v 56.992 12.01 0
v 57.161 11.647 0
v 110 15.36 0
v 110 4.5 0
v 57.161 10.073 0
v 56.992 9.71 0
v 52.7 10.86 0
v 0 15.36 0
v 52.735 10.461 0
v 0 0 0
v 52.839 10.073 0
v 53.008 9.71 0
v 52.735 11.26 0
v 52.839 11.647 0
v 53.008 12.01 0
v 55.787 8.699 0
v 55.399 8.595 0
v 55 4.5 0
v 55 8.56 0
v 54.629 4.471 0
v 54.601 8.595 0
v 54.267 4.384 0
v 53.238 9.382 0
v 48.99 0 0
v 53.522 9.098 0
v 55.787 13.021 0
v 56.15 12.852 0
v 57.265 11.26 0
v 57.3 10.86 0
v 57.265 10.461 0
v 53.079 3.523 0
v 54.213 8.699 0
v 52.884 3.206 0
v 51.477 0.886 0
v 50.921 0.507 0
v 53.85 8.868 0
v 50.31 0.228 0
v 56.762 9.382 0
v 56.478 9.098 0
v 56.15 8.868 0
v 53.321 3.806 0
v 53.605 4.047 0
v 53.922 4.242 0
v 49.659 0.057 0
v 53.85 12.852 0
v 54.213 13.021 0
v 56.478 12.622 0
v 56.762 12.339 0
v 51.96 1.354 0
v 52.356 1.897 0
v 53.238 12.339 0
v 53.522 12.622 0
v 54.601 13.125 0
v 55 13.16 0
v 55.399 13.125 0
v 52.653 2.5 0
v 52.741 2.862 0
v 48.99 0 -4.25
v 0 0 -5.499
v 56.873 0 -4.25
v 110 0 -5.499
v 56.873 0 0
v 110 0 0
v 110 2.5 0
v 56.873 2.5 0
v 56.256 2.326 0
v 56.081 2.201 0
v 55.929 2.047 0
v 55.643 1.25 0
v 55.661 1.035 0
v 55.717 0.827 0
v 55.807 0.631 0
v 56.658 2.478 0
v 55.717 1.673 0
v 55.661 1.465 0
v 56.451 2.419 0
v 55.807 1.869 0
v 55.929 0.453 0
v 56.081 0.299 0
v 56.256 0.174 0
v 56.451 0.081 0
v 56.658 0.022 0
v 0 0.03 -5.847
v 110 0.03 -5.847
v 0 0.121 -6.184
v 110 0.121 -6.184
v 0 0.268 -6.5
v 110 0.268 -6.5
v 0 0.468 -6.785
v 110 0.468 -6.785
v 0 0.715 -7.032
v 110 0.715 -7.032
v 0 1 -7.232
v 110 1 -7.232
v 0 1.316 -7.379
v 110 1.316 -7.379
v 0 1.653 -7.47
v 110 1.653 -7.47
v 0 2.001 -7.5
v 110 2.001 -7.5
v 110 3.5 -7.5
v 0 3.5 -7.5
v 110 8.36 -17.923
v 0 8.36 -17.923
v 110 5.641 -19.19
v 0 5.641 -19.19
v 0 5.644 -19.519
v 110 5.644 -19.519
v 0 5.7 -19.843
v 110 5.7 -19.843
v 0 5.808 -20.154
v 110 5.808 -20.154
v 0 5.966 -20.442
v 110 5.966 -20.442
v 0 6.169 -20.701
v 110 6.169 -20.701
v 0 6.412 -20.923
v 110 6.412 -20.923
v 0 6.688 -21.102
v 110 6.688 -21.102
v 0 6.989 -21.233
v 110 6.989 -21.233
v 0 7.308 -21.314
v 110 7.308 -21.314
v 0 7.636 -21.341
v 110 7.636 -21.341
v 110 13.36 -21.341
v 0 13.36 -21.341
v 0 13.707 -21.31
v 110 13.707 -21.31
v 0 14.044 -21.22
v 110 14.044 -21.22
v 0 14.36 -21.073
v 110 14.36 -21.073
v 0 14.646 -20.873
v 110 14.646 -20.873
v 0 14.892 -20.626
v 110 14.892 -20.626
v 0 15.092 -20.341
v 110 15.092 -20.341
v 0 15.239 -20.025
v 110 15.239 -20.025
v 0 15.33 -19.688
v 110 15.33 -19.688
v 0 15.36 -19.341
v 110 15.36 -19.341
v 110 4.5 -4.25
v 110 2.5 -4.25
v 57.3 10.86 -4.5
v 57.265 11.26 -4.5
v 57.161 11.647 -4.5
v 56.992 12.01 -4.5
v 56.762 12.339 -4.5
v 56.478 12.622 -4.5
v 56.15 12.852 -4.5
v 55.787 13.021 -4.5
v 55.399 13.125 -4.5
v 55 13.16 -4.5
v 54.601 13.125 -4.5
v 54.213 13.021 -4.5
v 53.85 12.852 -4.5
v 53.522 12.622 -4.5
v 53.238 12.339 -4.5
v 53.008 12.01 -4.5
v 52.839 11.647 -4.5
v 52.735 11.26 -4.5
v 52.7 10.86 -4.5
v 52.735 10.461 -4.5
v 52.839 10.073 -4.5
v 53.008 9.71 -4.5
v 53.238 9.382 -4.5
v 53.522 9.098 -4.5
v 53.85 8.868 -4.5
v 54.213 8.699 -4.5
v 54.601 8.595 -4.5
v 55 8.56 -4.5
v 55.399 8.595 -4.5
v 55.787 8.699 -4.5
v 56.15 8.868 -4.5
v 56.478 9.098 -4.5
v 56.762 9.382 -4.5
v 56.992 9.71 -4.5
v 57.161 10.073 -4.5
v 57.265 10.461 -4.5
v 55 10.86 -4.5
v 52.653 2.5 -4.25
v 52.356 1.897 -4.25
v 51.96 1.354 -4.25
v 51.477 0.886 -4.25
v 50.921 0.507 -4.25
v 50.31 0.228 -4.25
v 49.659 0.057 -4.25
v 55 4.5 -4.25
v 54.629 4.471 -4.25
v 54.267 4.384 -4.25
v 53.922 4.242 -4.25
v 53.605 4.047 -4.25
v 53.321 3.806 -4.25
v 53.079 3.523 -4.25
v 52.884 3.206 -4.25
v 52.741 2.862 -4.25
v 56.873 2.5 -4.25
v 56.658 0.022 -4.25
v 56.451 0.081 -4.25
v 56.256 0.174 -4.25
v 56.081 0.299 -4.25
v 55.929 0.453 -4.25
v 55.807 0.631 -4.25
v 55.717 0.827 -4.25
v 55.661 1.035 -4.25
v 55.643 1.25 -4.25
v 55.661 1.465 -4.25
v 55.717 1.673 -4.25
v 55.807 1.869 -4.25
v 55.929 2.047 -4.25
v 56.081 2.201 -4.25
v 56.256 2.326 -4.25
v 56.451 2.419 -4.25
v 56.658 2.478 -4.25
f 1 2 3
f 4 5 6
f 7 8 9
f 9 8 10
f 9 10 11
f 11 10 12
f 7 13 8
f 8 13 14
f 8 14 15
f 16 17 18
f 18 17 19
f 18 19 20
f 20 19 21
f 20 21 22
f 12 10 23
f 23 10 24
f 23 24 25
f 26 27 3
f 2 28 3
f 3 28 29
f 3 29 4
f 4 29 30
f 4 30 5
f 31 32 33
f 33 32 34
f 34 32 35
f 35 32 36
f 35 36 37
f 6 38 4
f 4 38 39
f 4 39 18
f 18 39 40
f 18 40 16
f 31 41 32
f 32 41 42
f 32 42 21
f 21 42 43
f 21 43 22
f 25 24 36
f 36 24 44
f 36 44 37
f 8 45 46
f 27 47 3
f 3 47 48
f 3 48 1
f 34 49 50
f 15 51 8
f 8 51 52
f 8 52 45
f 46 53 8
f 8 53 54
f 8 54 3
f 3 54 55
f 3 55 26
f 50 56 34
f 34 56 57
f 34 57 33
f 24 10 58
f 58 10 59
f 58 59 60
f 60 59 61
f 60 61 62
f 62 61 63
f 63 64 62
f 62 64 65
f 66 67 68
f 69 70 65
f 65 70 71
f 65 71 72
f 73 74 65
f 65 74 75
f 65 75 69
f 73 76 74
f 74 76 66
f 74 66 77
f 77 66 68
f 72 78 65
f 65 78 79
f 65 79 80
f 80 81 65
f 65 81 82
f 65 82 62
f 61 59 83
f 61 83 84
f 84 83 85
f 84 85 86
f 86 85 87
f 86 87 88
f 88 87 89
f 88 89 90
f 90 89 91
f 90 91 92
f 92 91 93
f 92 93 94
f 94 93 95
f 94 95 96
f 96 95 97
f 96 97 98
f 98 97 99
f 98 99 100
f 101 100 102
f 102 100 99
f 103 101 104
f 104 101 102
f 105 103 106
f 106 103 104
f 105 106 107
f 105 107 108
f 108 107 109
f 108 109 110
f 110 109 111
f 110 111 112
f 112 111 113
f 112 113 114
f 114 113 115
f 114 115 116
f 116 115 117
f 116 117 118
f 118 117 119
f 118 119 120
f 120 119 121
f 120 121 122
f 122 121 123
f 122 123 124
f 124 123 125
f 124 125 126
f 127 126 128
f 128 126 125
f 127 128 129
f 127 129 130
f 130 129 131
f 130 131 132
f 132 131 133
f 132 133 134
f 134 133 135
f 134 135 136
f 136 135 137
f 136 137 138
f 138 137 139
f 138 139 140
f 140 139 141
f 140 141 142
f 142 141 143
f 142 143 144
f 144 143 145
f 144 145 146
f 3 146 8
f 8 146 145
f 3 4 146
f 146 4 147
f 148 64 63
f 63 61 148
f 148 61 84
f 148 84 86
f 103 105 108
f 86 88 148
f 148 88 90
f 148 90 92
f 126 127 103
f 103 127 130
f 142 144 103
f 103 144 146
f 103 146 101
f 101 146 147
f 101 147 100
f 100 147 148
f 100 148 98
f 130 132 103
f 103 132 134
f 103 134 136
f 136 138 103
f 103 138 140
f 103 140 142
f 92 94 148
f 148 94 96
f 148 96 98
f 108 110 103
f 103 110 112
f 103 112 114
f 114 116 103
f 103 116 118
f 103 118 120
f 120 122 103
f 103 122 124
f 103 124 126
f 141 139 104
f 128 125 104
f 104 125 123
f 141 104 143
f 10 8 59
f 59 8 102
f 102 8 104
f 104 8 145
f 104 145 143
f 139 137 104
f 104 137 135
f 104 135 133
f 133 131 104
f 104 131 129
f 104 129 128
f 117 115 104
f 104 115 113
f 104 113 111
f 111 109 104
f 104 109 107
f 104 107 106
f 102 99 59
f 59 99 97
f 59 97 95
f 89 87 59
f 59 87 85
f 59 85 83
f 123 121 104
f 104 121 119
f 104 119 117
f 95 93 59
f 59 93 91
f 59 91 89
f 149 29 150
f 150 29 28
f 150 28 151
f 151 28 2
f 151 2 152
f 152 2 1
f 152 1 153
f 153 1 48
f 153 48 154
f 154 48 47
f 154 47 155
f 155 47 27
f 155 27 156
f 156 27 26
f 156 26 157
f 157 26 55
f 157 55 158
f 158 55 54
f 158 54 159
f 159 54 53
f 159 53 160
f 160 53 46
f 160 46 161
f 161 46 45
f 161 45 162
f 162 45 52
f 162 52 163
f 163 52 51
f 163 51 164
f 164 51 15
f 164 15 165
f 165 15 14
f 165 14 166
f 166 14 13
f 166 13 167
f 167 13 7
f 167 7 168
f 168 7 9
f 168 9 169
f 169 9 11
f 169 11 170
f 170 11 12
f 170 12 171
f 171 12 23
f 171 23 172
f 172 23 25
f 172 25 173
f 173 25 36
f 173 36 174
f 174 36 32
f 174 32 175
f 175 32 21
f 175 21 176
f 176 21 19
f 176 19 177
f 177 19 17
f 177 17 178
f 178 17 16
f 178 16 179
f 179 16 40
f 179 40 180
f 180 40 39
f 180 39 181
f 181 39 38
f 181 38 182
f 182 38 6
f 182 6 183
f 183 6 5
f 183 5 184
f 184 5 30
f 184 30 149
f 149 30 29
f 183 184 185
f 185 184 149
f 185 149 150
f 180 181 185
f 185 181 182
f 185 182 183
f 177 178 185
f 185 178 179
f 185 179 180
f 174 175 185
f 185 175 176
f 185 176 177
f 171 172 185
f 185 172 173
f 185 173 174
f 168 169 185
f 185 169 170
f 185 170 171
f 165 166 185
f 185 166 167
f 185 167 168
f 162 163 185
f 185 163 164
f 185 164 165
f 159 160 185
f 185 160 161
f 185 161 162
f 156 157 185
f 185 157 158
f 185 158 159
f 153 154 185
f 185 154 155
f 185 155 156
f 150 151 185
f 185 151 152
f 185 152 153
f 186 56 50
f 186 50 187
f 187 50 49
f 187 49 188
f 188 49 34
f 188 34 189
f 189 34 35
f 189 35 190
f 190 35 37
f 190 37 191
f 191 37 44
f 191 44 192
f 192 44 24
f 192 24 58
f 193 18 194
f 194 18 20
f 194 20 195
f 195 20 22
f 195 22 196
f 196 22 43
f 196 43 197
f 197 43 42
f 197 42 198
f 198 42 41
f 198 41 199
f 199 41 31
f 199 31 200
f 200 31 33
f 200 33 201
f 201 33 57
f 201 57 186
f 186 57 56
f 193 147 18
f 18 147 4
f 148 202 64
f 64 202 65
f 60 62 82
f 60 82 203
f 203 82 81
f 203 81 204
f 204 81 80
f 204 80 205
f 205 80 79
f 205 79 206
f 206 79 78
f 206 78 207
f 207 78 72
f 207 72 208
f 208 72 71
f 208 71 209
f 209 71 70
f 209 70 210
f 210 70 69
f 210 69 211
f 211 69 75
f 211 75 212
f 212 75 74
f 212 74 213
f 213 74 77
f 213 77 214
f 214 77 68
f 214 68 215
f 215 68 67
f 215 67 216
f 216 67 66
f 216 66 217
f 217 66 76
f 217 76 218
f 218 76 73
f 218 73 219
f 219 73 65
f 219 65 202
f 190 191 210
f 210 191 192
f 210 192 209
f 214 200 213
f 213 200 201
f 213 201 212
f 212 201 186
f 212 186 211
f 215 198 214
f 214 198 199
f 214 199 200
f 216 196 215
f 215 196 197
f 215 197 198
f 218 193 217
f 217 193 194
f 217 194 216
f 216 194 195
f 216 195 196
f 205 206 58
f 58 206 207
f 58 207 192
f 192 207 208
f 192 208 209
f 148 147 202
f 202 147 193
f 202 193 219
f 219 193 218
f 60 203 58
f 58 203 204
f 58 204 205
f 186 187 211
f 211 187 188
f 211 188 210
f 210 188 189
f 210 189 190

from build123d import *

# Parameters (mm, degrees)
PROFILEBOSS_EXTRUDE1_DEPTH      = 110
SKETCH3_R                       = 2.3
MOUNTINGHOLESCUT_EXTRUDE3_DEPTH = 4.5
XAXISCABLECUT_EXTRUDE1_DEPTH    = 4.25


with BuildPart() as part:
    # Sketch1 → ProfileBoss-Extrude1 (new body)
    with BuildSketch(Plane(origin=(0, 0, 0), x_dir=(0, 0, -1), z_dir=(1, 0, 0))):
        with BuildLine():
            Line((0, 0), (5.499461553, 0))
            ThreePointArc((5.499461553, 0), (6.914055855, 0.585944145), (7.5, 2.000538447))
            Line((7.5, 2.000538447), (7.5, 3.5))
            Line((7.5, 3.5), (17.922539551, 8.36011001))
            Line((17.922539551, 8.36011001), (19.190394336, 5.641186649))
            ThreePointArc((19.190394336, 5.641186649), (20.700753359, 6.16912635), (21.340729536, 7.635528477))
            Line((21.340729536, 7.635528477), (21.340729536, 13.36011001))
            ThreePointArc((21.340729536, 13.36011001), (20.754943098, 14.774323572), (19.340729536, 15.36011001))
            Line((19.340729536, 15.36011001), (0, 15.36011001))
            Line((0, 15.36011001), (0, 0))
        make_face()
    extrude(amount=PROFILEBOSS_EXTRUDE1_DEPTH)

    # Sketch3 → MountingHolesCut-Extrude3 (cut)
    with BuildSketch(Plane.XY):
        with Locations((55, 10.86011001)):
            Circle(SKETCH3_R)
    extrude(amount=-MOUNTINGHOLESCUT_EXTRUDE3_DEPTH, mode=Mode.SUBTRACT)

    # Sketch4 → XAxisCableCut-Extrude1 (cut)
    with BuildSketch(Plane.XY):
        with BuildLine():
            Line((55, 4.5), (110, 4.5))
            Line((110, 4.5), (110, 2.5))
            Line((110, 2.5), (56.872897785, 2.5))
            ThreePointArc((56.872897785, 2.5), (55.642642805, 1.25), (56.872897785, 0))
            Line((56.872897785, 0), (48.989527283, 0))
            ThreePointArc((48.989527283, 0), (51.20727122, 0.684547643), (52.653343966, 2.5))
            ThreePointArc((52.653343966, 2.5), (53.458345487, 3.932167796), (55, 4.5))
        make_face()
    extrude(amount=-XAXISCABLECUT_EXTRUDE1_DEPTH, mode=Mode.SUBTRACT)


solid = part.part
